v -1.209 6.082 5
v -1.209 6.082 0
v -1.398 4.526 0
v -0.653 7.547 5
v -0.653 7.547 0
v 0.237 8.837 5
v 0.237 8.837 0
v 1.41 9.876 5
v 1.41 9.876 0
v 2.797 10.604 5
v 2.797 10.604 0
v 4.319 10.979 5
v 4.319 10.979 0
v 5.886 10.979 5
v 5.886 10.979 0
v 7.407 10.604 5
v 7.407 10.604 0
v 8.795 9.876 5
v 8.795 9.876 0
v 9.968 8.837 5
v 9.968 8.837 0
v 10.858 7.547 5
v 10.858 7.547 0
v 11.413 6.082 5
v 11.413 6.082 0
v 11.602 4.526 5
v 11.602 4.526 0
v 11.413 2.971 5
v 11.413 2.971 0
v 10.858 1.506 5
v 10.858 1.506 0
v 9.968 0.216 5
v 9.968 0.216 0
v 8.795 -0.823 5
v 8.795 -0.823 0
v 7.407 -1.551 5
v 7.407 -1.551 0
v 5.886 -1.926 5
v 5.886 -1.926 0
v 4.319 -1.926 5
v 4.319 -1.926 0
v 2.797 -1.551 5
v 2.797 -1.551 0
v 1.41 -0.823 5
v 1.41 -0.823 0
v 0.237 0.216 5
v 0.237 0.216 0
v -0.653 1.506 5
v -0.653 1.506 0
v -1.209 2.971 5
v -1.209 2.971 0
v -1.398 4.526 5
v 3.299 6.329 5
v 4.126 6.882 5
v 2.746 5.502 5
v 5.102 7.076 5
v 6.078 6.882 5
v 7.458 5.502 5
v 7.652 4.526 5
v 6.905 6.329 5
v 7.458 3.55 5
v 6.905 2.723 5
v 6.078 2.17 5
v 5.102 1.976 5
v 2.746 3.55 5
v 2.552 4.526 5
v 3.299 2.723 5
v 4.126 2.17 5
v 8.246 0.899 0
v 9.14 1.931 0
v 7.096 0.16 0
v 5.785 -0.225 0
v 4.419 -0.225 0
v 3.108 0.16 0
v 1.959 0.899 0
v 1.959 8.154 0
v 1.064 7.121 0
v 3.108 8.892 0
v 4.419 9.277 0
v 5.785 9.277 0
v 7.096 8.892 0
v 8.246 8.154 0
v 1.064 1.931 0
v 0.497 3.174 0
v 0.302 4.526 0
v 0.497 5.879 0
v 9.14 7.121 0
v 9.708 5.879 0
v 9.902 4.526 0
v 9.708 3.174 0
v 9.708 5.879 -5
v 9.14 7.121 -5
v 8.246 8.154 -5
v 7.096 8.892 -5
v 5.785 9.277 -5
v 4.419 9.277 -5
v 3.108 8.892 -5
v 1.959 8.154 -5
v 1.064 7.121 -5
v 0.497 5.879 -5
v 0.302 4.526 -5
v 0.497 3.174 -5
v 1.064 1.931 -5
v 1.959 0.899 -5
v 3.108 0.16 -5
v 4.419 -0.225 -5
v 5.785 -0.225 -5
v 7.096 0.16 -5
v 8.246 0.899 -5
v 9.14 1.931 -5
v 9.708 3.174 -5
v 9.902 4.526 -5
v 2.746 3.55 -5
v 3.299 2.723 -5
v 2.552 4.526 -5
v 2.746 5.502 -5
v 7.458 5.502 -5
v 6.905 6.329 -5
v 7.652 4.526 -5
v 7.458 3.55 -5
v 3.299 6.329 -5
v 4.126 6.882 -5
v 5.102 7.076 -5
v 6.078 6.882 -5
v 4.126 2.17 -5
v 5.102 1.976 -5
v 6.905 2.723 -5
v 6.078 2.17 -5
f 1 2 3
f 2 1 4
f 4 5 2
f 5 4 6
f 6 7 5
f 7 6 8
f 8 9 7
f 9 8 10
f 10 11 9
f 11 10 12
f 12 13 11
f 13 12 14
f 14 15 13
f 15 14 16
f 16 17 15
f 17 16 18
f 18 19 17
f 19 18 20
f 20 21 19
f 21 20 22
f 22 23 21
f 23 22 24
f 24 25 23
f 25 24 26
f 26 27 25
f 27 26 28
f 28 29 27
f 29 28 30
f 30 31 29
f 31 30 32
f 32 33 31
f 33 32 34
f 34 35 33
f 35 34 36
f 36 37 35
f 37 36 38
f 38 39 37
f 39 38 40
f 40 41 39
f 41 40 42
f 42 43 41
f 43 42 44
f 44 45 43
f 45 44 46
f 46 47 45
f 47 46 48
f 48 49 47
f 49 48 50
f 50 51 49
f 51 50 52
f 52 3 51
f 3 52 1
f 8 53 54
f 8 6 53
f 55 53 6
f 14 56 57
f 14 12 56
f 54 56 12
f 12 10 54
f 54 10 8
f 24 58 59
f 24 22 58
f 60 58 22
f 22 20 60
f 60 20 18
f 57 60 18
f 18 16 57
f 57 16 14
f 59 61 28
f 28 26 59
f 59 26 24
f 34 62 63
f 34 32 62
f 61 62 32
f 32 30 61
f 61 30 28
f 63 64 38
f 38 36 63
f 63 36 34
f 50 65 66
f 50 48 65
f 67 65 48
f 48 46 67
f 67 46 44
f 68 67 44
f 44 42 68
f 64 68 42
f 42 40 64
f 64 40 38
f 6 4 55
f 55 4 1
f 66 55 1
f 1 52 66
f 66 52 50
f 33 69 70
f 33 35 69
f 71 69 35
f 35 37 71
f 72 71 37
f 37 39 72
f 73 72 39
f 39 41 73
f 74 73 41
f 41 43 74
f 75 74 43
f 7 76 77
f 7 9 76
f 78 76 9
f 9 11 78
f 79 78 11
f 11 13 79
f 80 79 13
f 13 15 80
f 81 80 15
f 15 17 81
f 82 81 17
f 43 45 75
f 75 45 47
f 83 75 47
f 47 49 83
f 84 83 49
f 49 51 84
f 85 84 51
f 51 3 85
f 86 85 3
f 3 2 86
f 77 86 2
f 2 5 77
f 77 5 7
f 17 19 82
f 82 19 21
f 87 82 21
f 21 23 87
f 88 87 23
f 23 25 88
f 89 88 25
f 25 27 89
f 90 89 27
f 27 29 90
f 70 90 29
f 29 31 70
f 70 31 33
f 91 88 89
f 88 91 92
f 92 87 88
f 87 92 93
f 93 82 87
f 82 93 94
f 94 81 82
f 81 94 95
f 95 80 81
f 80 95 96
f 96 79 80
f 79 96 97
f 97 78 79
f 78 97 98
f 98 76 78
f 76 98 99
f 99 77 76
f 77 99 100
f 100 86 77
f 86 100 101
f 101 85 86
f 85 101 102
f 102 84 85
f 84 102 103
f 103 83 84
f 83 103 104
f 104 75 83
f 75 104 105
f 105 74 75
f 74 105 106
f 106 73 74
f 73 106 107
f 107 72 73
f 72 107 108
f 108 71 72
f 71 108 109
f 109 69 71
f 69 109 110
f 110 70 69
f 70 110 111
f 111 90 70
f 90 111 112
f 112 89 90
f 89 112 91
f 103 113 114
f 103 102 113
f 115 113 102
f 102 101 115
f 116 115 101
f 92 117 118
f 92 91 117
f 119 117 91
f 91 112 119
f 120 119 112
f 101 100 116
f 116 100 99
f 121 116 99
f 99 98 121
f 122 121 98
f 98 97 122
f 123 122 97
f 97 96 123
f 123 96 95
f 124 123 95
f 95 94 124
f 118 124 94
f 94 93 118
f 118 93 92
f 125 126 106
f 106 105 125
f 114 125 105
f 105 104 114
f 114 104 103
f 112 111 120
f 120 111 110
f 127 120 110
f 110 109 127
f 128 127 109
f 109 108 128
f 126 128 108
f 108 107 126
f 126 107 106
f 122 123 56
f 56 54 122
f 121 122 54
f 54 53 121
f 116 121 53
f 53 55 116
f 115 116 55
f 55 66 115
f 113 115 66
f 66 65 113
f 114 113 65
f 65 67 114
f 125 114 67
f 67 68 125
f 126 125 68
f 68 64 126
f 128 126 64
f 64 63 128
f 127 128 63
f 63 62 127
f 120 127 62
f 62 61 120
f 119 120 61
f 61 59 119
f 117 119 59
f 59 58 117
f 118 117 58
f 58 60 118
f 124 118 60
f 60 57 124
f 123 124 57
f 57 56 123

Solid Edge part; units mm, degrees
sketch "Sketch1" plane through (0, 0, 0) normal (0, 0, 1) x (1, 0, 0)
  circle A0 centre (5.1022, 4.5263) radius 6.5
extrude "Protrusion1" add sketch "Sketch1" along normal blind 5
sketch "Sketch2" plane through (5.1022, 4.5263, 0) normal (0, 0, -1) x (-1, 0, 0)
  circle A0 centre (0, 0) radius 4.8
extrude "ExtrudedProtrusion_2" add sketch "Sketch2" along normal blind 5
hole "Hole_1" at (5.1022, 4.5263, -5) direction (0, 0, 1) diameter 5.1 end through all
